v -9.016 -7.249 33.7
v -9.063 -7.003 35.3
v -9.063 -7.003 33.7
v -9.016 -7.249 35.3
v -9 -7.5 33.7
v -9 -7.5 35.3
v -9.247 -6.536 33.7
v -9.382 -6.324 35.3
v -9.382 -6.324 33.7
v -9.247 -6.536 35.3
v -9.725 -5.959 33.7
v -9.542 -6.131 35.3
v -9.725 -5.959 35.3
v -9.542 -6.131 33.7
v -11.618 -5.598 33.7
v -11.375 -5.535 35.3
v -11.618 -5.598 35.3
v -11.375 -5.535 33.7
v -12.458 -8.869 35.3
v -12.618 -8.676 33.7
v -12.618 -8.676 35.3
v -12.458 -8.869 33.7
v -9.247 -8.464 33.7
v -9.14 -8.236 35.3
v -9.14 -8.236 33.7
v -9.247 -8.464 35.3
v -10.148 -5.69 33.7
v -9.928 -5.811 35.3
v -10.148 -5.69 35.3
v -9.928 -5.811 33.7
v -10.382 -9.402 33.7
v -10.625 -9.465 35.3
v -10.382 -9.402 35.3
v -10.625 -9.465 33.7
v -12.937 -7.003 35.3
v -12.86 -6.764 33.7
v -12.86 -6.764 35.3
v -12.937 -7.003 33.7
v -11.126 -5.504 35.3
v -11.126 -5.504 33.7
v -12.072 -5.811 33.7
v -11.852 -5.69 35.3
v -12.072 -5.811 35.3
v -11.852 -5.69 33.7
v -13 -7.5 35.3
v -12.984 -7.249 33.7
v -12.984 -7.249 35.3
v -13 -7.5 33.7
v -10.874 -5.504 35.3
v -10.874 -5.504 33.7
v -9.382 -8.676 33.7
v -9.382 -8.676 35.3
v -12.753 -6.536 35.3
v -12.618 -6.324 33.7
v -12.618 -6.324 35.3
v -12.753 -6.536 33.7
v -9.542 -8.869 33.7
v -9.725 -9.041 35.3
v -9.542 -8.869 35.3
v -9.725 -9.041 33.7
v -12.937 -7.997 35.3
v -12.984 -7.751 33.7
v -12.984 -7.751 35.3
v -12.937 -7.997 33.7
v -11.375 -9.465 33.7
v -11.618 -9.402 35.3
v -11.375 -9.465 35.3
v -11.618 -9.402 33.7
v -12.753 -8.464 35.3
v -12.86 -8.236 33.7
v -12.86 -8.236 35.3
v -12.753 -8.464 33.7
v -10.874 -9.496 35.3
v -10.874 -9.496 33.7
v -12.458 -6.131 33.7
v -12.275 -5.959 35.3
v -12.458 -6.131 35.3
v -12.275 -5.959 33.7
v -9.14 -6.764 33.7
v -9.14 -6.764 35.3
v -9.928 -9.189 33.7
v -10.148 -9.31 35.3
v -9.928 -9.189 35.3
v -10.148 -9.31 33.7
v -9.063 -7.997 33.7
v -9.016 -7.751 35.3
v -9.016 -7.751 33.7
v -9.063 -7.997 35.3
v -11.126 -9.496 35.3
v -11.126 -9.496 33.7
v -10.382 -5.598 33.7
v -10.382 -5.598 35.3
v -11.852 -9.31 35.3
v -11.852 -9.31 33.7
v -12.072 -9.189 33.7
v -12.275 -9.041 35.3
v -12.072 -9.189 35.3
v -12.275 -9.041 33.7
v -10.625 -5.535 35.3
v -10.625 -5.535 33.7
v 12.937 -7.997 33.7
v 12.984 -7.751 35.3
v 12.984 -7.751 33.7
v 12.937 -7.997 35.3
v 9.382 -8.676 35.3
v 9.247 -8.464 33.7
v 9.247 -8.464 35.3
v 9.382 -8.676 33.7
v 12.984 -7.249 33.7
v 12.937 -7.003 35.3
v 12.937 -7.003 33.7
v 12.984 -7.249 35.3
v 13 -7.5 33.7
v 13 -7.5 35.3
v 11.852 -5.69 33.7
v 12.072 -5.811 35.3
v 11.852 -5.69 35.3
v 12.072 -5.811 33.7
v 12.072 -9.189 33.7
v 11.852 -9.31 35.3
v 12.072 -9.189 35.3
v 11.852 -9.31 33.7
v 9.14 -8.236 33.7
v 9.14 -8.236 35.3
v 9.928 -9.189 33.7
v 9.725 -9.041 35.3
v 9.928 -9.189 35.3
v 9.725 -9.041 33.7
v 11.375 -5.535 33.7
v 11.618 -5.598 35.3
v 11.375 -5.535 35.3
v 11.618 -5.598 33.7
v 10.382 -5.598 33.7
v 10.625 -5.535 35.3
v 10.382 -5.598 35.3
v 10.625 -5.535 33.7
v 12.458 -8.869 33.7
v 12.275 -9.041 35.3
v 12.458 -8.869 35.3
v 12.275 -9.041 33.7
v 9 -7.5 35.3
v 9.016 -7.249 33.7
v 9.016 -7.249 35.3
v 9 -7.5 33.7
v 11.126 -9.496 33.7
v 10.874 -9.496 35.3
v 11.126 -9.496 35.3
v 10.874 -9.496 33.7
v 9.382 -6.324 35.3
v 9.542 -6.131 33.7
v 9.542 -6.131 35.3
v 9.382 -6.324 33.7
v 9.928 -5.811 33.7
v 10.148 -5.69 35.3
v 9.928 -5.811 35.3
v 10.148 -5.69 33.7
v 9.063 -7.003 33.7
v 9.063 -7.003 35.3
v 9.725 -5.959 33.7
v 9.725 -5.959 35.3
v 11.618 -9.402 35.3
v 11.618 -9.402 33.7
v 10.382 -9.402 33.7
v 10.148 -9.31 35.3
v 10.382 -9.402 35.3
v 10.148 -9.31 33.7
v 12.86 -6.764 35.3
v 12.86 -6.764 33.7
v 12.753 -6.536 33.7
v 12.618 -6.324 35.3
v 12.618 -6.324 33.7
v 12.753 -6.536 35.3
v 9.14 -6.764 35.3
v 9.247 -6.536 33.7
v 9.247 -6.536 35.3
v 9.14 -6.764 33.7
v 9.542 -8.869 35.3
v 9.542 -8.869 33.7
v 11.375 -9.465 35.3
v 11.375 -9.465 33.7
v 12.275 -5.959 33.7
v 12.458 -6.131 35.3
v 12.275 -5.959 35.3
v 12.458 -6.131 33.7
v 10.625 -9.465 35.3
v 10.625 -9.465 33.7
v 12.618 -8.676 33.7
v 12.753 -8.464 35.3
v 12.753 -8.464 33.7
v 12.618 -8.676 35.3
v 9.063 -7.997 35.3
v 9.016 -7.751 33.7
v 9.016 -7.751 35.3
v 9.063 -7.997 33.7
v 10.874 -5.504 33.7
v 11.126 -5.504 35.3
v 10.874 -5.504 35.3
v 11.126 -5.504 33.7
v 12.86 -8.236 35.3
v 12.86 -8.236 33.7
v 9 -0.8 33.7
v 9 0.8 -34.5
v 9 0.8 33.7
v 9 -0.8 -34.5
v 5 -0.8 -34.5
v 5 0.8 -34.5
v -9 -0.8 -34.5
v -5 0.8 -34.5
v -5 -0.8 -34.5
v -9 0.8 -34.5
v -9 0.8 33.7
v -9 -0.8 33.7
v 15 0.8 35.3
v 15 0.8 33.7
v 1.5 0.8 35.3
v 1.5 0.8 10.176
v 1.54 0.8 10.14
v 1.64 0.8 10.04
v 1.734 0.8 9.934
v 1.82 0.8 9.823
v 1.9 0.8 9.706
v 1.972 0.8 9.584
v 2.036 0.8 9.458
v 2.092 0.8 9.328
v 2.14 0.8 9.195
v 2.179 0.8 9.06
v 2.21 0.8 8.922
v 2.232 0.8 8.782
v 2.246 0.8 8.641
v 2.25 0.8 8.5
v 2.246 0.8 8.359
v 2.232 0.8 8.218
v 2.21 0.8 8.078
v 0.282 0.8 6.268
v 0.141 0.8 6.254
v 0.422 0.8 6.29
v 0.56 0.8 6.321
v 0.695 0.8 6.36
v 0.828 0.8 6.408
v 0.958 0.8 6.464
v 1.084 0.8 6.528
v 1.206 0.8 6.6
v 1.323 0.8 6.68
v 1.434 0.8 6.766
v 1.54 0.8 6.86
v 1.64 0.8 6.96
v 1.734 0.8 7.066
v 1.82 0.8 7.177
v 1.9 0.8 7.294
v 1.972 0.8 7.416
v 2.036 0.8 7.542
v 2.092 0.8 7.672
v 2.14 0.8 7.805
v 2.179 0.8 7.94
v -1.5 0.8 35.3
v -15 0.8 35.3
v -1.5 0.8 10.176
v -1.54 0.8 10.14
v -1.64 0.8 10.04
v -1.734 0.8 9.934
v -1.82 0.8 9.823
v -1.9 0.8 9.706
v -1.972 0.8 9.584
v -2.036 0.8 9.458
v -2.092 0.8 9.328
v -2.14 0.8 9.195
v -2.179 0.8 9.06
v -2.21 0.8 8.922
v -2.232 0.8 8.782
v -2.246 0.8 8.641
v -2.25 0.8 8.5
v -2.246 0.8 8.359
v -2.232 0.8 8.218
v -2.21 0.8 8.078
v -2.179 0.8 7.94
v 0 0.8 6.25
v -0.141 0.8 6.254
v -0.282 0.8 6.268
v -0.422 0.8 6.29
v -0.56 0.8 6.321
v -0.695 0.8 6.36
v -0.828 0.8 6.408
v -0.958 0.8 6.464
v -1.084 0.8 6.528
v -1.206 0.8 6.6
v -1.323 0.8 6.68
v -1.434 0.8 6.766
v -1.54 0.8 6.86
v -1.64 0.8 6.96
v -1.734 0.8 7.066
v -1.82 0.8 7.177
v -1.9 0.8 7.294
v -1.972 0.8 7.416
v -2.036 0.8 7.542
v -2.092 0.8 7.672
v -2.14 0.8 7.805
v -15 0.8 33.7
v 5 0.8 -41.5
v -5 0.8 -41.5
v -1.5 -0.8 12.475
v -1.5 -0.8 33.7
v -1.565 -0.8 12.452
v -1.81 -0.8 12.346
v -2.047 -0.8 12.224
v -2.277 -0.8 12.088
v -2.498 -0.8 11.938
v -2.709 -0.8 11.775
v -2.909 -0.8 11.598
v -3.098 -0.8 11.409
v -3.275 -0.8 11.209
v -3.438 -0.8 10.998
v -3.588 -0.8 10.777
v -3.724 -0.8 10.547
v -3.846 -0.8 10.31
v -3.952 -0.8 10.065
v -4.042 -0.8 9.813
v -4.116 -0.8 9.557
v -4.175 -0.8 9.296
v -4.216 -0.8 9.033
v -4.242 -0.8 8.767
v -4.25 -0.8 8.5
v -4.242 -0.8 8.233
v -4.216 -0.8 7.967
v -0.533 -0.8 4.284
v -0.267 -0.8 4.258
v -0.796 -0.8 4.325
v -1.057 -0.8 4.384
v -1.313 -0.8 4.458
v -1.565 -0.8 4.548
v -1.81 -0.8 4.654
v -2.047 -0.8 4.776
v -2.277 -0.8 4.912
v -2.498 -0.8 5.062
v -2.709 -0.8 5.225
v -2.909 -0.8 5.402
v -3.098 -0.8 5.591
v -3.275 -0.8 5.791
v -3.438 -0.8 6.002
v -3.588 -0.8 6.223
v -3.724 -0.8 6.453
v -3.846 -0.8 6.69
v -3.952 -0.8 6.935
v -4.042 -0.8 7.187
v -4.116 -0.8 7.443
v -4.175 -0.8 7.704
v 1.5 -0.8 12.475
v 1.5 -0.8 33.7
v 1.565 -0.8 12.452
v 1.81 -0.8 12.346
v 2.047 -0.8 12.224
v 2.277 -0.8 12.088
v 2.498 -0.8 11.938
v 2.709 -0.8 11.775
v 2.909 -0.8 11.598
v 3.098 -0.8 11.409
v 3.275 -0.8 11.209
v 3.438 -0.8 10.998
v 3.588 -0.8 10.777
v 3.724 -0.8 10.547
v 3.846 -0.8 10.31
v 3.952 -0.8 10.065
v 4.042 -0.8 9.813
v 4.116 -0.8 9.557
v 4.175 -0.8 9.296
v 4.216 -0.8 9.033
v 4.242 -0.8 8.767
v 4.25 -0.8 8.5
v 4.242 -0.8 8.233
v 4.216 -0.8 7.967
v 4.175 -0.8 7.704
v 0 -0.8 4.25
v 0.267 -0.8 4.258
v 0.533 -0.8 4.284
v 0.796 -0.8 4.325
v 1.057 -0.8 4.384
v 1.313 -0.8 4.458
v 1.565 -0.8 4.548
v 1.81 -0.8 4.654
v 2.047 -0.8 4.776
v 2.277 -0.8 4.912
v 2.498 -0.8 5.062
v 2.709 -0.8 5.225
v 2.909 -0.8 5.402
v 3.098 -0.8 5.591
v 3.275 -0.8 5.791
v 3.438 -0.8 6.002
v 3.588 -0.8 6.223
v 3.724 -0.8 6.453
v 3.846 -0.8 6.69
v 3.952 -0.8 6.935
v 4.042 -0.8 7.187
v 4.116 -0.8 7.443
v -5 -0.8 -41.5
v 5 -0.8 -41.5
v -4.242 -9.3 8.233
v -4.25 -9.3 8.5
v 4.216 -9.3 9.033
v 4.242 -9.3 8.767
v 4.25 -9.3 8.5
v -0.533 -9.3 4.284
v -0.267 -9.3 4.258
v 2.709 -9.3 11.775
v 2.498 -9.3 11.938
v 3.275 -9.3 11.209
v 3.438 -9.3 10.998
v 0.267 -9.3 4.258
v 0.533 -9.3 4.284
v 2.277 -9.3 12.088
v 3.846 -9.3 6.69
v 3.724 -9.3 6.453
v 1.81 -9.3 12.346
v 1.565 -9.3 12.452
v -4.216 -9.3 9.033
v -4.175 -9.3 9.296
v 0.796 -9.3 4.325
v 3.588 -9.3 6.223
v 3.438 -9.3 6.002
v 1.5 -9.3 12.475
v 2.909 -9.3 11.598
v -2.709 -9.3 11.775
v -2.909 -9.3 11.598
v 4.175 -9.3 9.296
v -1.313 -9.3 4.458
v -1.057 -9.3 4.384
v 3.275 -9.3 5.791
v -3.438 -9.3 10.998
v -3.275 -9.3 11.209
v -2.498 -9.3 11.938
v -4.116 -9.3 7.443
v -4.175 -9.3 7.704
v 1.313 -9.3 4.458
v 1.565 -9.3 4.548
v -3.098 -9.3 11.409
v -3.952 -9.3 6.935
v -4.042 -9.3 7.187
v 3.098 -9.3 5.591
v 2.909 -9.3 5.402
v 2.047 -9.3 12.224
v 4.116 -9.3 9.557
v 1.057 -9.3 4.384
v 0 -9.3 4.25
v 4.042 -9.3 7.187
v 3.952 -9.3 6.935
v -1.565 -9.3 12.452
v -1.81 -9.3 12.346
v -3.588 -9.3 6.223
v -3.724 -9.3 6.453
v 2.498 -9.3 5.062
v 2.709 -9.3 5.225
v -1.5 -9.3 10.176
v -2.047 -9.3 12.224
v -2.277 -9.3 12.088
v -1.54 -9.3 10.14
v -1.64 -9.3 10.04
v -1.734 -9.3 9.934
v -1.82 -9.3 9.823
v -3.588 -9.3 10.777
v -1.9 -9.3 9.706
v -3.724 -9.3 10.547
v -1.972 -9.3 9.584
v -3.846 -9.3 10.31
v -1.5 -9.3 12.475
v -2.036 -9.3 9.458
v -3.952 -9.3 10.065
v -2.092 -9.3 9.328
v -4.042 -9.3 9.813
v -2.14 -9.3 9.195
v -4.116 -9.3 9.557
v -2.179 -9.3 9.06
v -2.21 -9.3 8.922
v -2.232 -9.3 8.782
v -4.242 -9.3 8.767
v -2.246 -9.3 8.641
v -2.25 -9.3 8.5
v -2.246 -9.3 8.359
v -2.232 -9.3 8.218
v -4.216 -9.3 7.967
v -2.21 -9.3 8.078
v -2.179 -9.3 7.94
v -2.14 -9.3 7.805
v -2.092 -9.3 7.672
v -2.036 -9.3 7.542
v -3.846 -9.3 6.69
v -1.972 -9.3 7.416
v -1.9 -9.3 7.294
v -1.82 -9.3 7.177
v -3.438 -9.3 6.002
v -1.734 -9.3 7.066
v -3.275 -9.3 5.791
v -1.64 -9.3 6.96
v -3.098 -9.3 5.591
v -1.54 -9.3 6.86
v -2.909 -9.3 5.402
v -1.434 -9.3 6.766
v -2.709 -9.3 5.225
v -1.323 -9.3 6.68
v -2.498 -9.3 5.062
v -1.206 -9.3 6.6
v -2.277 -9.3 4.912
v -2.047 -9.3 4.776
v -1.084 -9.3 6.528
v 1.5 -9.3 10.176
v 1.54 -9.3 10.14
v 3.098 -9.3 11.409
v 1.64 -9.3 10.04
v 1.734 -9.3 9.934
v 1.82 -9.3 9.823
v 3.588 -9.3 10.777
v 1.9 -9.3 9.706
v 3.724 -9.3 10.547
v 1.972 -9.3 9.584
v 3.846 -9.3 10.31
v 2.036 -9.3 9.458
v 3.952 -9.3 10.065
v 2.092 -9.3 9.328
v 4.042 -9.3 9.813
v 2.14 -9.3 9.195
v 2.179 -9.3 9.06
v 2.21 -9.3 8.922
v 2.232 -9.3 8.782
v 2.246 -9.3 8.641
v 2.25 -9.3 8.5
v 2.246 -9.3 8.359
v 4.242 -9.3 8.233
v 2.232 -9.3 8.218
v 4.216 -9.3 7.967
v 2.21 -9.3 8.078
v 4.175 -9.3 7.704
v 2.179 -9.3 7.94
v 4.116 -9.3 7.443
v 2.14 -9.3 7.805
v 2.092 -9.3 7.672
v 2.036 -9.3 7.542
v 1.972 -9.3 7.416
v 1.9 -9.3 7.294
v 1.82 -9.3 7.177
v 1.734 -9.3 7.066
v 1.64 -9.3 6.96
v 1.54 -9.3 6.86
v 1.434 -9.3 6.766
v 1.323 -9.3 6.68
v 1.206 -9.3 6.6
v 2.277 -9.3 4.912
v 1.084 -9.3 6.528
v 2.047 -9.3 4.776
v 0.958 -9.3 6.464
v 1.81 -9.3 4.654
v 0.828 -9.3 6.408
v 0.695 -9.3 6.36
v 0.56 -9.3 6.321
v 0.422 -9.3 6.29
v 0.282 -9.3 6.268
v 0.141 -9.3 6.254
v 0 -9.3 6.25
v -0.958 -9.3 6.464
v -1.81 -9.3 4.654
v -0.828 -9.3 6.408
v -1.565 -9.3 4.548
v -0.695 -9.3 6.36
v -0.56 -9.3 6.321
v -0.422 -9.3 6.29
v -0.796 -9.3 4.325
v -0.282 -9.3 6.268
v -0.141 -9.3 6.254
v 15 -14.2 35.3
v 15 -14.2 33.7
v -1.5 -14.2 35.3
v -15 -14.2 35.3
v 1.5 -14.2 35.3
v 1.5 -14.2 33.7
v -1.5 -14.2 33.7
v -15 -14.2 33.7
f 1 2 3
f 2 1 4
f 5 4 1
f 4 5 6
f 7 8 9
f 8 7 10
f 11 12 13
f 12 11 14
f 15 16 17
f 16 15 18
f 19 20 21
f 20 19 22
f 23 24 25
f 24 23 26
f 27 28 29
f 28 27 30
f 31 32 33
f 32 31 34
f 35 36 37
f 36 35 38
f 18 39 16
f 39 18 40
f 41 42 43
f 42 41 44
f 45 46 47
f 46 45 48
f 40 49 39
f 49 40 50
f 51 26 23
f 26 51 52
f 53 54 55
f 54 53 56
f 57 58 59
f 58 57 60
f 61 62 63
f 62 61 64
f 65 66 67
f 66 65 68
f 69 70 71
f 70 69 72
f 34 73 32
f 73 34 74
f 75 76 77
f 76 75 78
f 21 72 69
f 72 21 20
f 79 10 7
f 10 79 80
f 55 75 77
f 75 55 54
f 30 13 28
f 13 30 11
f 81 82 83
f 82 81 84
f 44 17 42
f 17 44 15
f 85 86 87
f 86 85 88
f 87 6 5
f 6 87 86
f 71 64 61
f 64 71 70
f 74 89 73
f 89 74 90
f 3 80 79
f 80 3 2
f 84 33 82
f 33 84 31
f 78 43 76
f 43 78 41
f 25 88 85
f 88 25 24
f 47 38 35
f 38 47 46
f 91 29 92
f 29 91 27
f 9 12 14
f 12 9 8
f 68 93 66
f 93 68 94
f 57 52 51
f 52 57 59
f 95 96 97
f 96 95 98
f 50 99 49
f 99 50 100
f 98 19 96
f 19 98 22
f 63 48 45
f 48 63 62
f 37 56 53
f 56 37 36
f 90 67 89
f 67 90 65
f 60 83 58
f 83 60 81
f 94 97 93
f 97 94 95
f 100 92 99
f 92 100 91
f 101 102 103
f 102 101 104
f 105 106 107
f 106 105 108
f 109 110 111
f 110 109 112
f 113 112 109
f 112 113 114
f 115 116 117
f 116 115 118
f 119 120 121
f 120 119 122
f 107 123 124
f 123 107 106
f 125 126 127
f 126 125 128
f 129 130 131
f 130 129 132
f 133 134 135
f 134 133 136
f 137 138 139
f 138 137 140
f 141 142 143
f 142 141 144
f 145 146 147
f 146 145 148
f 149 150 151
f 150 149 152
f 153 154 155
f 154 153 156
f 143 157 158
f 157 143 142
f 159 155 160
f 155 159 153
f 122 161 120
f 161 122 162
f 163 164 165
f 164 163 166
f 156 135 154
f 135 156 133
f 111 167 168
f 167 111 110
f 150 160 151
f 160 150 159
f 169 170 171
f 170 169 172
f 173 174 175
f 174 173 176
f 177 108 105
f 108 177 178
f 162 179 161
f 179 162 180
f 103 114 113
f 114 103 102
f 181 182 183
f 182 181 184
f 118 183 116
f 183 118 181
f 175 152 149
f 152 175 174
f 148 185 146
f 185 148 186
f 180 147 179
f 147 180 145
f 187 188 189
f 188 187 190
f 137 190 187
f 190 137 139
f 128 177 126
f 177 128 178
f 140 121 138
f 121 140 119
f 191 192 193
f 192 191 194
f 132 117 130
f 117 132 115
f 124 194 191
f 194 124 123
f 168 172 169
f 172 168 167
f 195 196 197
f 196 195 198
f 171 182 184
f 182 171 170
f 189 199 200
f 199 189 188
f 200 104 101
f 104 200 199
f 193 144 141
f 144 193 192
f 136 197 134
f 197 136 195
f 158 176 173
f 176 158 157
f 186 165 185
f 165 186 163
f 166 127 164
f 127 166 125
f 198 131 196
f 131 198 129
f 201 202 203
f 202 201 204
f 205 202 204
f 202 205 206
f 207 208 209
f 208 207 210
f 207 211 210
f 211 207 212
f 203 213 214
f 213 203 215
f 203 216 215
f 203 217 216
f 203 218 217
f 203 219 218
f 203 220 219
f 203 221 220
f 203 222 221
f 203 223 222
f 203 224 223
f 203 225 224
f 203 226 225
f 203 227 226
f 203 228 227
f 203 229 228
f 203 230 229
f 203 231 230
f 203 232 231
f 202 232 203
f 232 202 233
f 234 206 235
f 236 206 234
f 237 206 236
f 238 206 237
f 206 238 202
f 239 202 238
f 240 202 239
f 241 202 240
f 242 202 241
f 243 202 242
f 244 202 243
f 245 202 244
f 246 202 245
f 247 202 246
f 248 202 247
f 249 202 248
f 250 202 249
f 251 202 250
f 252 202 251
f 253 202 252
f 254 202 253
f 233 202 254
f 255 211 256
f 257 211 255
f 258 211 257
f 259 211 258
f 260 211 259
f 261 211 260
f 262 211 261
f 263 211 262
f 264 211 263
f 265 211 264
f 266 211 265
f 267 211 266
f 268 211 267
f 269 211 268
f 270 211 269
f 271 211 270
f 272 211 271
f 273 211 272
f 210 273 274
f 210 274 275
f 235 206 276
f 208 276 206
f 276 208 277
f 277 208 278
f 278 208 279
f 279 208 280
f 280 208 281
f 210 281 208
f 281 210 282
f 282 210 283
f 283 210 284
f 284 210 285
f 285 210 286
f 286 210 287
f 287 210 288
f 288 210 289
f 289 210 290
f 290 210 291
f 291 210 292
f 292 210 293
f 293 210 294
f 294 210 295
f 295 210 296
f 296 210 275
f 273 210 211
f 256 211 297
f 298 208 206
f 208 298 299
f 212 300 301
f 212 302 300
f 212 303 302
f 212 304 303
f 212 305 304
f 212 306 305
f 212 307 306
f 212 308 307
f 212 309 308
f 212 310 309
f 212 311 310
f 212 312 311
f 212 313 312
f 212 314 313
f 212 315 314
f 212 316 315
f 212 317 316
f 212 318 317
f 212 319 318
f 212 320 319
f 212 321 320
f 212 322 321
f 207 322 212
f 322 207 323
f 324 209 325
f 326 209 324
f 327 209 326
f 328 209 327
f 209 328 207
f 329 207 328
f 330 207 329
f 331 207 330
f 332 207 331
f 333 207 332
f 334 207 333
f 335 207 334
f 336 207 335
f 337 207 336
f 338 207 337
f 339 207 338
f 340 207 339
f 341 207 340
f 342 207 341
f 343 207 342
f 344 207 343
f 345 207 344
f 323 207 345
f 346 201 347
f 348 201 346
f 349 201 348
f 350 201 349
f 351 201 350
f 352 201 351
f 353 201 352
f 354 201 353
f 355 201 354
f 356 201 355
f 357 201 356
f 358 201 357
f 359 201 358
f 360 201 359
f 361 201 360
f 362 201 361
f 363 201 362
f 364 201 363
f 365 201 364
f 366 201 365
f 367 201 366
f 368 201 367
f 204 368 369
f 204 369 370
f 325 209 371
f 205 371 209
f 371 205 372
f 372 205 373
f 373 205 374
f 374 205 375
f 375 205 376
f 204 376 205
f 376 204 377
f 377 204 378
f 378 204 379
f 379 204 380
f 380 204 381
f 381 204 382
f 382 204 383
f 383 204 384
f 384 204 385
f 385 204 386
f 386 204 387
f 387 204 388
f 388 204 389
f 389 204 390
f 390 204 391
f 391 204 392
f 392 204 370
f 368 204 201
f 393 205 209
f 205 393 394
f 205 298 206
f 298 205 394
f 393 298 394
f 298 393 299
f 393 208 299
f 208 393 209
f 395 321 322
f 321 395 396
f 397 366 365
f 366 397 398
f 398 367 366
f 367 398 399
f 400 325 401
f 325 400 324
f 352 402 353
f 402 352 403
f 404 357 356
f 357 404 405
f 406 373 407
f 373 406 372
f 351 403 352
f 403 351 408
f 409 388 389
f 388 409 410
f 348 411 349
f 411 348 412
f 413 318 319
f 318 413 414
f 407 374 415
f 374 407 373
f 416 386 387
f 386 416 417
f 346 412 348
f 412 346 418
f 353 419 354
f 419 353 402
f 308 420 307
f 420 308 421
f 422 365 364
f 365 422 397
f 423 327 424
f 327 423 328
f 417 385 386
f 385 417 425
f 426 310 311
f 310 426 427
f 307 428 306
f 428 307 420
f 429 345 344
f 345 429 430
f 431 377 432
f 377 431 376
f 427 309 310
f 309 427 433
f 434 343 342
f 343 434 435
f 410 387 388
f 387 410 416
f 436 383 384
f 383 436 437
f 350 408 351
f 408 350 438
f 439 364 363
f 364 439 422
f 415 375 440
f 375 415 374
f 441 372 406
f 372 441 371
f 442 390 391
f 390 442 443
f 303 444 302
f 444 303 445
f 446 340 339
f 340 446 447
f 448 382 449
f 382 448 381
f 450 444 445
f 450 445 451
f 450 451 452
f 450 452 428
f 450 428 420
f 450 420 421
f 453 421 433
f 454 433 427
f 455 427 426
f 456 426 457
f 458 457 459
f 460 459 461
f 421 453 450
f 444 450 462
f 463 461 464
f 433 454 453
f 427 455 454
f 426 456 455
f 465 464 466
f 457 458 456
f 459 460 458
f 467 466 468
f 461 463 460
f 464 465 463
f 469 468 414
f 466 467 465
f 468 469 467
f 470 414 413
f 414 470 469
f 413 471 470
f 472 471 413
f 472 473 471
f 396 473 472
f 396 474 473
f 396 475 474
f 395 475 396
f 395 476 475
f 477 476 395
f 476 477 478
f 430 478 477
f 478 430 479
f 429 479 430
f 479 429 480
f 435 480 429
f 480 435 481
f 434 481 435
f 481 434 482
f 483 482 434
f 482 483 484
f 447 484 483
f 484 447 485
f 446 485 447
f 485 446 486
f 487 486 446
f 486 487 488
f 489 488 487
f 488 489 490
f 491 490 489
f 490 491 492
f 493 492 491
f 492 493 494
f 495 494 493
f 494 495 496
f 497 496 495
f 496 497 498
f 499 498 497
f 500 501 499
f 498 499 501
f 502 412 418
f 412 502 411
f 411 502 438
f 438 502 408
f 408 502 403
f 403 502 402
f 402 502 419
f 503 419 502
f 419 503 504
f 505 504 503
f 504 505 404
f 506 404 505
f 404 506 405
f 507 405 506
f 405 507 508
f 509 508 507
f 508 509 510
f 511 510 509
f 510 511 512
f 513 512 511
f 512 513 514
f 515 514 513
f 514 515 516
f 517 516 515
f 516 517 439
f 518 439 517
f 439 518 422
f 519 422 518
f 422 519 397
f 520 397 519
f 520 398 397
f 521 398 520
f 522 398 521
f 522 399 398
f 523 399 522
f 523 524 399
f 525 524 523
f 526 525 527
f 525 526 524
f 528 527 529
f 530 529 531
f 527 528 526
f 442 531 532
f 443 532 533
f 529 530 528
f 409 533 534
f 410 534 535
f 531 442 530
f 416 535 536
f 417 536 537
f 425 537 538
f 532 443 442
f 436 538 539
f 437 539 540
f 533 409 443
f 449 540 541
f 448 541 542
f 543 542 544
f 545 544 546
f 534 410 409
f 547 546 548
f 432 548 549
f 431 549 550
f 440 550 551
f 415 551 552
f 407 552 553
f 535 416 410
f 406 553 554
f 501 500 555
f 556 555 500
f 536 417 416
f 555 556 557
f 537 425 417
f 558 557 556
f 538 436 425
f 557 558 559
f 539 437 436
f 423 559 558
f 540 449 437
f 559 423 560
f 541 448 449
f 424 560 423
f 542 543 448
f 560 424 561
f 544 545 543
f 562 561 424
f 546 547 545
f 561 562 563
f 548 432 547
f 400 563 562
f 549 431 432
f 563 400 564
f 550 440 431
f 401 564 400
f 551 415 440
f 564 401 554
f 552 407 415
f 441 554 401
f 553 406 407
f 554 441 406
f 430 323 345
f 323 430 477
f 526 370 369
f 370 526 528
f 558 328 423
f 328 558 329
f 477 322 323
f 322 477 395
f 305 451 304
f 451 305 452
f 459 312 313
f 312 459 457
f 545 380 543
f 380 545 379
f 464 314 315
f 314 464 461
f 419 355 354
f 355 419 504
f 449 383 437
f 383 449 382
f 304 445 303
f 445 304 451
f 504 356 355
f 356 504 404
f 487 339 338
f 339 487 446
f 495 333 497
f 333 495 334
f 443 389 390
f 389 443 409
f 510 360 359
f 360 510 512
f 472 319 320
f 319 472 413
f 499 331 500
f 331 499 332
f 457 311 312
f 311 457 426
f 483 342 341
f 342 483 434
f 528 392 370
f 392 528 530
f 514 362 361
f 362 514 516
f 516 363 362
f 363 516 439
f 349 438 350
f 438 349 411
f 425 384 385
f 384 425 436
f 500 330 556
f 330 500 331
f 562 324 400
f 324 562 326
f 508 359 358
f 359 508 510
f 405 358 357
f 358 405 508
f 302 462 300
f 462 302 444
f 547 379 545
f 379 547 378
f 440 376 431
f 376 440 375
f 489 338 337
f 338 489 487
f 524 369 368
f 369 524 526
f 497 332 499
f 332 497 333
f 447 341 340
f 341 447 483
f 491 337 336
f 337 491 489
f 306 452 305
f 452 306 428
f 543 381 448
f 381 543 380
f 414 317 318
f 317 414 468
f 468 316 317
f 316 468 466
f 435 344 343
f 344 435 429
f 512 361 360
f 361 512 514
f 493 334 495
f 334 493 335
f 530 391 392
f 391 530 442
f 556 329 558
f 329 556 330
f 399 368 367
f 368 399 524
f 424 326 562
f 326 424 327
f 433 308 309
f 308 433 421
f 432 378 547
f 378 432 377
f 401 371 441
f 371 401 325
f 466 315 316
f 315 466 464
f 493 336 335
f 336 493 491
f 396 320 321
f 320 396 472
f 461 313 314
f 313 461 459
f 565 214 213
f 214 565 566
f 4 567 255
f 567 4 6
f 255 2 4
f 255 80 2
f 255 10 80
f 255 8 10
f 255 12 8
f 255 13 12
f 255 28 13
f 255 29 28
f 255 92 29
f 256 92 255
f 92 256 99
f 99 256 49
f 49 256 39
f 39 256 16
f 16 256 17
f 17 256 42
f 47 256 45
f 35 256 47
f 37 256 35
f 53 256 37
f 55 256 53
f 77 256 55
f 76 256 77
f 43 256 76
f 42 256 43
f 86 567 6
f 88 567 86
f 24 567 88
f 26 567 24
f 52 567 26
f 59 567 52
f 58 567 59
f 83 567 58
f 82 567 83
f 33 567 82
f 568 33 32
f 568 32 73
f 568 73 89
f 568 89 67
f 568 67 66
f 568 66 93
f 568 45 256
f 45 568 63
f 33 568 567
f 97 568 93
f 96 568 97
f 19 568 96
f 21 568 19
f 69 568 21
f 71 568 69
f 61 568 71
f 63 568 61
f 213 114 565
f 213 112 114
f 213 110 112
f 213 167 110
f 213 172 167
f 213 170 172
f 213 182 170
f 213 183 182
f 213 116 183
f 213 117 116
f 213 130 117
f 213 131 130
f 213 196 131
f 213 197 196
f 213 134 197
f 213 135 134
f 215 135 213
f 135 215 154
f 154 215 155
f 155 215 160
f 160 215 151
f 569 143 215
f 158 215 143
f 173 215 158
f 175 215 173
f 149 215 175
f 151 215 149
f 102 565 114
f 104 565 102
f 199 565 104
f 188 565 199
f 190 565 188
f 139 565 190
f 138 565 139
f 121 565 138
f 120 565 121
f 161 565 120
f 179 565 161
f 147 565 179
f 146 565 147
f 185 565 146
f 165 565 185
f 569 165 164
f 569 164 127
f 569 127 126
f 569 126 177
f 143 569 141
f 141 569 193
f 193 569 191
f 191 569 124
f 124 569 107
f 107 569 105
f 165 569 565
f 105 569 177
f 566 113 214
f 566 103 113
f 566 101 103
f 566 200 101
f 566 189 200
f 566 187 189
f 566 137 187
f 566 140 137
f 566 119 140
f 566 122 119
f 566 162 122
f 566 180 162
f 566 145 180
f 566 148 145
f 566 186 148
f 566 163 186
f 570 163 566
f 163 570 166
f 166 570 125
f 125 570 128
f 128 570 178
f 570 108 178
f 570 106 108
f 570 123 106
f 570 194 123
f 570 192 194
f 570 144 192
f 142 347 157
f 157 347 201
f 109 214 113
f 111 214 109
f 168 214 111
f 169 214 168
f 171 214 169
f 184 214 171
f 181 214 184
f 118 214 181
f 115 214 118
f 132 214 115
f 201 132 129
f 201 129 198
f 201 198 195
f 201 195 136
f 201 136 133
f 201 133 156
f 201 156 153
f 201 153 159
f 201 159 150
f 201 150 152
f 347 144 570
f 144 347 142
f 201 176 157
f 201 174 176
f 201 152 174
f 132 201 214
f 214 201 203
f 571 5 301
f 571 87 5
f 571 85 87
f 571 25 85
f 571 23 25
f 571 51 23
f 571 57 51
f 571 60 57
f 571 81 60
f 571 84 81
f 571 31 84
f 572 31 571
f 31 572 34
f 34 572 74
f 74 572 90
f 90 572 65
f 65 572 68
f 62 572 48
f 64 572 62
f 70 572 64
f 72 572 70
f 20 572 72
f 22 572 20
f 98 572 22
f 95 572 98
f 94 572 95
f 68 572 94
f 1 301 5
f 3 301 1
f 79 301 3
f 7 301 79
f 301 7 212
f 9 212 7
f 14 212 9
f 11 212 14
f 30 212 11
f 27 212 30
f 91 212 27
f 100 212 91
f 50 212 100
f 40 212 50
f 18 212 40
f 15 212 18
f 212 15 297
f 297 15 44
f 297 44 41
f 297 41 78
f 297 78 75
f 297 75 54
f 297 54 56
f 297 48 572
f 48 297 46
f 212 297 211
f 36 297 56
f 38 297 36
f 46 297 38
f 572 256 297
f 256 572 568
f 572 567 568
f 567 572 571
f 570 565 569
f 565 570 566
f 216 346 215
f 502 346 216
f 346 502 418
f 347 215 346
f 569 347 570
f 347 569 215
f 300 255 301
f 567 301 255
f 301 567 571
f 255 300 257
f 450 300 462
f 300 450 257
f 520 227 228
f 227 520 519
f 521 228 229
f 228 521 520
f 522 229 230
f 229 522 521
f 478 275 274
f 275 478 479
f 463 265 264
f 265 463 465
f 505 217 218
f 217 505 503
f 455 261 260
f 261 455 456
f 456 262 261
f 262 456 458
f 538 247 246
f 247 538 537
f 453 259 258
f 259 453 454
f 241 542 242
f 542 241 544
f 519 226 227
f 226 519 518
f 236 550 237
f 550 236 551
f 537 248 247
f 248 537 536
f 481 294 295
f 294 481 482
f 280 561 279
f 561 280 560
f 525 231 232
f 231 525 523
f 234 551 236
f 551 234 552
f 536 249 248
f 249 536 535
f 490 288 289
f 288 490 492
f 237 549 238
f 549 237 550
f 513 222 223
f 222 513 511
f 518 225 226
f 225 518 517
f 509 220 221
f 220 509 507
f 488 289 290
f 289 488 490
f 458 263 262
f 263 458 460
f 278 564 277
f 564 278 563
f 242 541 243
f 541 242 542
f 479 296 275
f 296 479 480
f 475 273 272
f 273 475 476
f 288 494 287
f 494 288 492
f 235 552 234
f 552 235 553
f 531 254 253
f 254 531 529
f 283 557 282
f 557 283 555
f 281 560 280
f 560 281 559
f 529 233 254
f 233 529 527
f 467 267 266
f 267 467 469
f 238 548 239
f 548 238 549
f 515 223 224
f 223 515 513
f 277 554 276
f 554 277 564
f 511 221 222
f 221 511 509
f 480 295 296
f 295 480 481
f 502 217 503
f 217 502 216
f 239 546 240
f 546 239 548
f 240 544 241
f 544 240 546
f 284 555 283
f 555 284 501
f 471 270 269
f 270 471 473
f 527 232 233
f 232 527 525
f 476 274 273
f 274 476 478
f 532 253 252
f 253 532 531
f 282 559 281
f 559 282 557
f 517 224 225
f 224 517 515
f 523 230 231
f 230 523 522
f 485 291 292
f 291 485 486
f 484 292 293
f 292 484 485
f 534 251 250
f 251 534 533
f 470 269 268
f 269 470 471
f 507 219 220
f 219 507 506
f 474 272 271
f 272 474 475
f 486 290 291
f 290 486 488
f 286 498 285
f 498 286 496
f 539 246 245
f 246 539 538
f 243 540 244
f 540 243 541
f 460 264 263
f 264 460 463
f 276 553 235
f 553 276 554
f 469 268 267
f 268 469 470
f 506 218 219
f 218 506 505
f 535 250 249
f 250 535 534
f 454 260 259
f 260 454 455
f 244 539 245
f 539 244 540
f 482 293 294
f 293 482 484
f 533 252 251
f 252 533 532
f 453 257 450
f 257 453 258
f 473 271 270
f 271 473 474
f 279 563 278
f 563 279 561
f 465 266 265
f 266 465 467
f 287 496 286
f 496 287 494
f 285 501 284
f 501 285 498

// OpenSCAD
// Cable holder for splitter
//
th = 1.6;
h_dia = 4.5;
th_dia = 4.0;
key_w = 3.0;
drop = 25;
tab_w = 15;
tube_len=5+th;

module plate()
{
cube([18, th, 69], center=true);
translate([0, 0, -3.5-69/2])
cube([10, th, 7], center=true);

    translate([0,-tube_len/2-th/2-.2,69/2-1-drop])
    rotate([90, 0,0])
    cylinder(r=h_dia/2+2, h=10, $fn=100, center=true);
    
 translate([0, -tab_w/2+th/2, 69/2])
  cube([30, tab_w, th], center=true);
}

module hole()
{
    translate([0, -th*3,69/2-1])
    cube([key_w, tab_w*2, drop*2], center=true);

    translate([0,0,69/2-1-drop])
    rotate([90, 0,0])
    cylinder(r=h_dia/2, h=30, $fn=100, center=true);
    }
    
    module top_hole()
      {
          translate([0, 0, 0])
          cylinder(h= th*4, r=th_dia/2, $fn=50, center=true);
          translate([22.0, 0, 0])
          cylinder(h= th*4, r=th_dia/2, $fn=50, center=true);
          
      }
    
difference()
{
plate();
hole();
    translate([-11, -7.5, 69/2])
    rotate([0, 0, 0])
    top_hole();
}
